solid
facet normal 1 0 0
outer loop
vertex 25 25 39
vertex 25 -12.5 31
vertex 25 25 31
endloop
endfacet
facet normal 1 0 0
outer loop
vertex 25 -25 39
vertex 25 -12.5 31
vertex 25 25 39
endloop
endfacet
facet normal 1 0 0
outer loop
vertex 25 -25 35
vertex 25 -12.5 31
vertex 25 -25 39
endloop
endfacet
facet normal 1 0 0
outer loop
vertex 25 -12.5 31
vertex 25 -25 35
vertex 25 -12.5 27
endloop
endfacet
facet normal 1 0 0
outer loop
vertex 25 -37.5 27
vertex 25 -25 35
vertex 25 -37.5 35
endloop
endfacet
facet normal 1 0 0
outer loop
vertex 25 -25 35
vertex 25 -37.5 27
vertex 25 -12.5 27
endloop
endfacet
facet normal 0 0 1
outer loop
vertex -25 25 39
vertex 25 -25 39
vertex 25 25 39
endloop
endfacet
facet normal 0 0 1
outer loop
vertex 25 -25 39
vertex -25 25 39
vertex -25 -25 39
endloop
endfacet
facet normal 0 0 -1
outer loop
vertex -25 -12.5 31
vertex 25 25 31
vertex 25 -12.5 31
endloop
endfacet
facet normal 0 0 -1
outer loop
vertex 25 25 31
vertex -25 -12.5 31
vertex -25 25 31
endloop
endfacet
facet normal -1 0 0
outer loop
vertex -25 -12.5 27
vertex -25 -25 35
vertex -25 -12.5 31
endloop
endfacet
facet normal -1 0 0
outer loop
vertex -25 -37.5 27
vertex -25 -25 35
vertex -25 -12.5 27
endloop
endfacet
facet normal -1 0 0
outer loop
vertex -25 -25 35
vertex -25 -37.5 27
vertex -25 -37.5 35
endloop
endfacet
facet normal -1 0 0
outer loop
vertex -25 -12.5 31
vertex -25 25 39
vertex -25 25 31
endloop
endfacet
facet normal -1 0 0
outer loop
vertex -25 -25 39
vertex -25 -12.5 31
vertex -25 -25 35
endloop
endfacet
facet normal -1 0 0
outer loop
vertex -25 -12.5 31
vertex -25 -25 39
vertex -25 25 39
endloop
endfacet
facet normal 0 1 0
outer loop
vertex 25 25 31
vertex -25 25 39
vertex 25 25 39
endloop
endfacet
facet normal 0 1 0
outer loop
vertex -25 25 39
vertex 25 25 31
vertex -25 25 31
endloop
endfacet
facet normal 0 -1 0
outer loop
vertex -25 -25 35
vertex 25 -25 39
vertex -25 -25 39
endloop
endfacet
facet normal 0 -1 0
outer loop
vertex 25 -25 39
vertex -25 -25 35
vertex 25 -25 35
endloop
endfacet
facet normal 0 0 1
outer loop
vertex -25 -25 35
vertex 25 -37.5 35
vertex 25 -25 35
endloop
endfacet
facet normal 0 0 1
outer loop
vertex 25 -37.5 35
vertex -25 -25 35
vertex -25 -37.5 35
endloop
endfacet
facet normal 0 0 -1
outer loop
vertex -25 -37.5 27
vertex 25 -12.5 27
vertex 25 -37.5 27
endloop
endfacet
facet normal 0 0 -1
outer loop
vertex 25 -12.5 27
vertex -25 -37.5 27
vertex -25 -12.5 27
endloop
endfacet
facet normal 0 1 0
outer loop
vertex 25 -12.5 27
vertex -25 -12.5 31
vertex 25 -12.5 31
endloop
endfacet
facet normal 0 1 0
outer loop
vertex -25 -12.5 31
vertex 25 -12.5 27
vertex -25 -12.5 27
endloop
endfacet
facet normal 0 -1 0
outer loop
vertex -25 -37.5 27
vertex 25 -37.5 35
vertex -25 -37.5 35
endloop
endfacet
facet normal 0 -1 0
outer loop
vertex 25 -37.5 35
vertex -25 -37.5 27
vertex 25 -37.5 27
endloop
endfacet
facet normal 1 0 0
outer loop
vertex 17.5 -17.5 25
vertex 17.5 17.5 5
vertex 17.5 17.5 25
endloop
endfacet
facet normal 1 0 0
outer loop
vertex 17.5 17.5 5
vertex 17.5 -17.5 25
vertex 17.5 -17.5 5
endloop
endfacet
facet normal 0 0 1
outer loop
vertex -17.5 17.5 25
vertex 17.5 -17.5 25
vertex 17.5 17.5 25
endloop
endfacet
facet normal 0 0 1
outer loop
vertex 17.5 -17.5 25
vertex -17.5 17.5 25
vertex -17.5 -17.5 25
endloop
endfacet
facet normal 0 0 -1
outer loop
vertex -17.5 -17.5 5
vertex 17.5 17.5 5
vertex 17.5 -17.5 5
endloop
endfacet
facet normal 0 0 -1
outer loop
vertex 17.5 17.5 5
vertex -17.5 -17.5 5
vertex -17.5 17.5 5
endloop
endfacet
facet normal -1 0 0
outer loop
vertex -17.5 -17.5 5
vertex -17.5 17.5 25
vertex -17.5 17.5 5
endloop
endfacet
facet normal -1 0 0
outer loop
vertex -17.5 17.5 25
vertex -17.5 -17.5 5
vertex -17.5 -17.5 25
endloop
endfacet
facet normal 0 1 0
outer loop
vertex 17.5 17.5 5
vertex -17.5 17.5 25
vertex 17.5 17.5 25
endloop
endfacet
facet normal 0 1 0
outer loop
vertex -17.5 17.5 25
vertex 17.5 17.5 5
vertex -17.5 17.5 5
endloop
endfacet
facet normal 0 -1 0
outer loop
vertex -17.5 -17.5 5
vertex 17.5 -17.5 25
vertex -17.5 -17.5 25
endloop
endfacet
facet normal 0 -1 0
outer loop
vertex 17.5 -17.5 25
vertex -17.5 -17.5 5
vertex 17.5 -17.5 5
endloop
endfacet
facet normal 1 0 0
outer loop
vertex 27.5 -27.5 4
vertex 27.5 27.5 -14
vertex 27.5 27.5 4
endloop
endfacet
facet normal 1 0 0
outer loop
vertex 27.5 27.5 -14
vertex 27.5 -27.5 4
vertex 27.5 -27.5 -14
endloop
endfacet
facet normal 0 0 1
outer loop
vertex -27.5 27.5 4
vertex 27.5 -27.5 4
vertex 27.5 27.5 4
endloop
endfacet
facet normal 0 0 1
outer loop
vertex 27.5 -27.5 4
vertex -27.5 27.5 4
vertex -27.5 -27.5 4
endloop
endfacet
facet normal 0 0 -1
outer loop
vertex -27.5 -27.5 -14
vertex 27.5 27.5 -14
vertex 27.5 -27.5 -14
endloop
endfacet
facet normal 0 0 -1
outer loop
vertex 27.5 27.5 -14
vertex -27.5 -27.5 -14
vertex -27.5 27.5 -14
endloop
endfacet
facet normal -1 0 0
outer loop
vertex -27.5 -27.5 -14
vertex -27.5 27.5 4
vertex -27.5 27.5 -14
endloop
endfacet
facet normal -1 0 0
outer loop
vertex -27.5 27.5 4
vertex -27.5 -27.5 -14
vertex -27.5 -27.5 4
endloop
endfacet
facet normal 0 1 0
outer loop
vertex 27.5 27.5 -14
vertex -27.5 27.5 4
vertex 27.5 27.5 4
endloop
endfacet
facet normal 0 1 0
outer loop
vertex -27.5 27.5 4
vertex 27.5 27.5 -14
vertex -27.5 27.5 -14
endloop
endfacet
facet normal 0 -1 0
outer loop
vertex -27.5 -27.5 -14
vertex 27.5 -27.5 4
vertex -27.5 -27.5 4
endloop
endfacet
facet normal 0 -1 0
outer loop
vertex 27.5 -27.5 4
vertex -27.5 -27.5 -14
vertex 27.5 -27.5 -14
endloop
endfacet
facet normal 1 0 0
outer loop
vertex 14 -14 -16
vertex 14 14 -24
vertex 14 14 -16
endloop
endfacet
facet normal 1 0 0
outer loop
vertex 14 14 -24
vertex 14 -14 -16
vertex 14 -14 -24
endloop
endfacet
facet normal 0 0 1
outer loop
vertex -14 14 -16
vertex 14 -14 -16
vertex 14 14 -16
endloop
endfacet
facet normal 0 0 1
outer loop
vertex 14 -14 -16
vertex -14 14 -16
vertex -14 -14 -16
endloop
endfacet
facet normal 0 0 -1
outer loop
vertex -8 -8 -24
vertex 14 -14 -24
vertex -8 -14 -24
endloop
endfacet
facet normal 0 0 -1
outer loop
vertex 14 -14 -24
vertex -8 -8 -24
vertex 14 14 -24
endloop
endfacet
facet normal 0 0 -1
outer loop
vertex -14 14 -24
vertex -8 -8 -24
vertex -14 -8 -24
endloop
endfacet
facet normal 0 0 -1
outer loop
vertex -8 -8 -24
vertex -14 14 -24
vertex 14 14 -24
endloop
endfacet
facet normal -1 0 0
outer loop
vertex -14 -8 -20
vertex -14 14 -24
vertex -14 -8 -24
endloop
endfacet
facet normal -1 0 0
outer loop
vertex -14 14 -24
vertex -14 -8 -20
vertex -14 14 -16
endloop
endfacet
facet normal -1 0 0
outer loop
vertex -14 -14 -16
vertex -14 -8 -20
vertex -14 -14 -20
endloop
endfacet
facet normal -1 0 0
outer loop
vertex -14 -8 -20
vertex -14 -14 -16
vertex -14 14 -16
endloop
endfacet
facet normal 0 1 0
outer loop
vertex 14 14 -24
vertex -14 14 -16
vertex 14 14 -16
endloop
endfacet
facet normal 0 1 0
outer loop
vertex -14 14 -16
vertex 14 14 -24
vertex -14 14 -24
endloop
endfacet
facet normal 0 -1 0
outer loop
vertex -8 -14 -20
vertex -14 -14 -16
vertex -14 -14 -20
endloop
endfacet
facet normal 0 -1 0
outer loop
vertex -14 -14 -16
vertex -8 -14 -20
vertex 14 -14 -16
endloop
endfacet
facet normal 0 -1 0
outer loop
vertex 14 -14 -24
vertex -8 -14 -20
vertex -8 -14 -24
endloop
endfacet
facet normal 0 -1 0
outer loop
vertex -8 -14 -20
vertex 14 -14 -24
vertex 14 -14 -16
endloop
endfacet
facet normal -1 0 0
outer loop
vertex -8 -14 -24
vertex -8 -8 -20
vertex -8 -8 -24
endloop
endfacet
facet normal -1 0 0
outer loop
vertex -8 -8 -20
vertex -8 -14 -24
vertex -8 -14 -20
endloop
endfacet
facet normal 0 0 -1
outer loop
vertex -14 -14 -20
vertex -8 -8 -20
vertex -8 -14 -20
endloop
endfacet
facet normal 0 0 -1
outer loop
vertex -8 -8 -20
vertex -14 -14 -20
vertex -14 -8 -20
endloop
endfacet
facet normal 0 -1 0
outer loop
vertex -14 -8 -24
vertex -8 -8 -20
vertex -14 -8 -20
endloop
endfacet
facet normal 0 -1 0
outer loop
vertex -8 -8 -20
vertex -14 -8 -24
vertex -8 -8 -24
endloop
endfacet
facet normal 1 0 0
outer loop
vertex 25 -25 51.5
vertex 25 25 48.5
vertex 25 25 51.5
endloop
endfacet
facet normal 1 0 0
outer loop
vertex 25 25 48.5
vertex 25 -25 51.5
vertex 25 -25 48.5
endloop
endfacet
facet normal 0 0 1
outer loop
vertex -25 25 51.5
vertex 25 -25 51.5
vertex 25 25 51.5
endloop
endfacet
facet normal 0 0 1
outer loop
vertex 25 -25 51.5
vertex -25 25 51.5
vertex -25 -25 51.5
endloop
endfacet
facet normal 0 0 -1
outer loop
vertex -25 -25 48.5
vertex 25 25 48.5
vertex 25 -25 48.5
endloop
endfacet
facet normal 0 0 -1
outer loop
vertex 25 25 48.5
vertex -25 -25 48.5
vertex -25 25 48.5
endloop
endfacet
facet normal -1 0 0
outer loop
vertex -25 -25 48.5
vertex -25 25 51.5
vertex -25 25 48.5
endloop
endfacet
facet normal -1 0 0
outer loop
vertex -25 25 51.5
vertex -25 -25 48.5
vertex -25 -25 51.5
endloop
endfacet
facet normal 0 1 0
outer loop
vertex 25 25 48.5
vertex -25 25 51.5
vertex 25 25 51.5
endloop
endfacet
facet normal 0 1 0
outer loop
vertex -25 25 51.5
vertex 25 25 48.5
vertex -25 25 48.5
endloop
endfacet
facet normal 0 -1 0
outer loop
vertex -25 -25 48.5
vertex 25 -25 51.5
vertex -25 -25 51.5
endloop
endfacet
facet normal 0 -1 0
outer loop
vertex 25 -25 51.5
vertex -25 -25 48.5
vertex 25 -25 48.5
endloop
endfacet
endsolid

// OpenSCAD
// Define the dimensions for each component
module flat_plate() {
    cube([50, 50, 3], center = true); // Reduced thickness to match the original model
}

module l_shaped_connector() {
    difference() {
        union() {
            cube([50, 50, 8], center = true); // Thinned horizontal section
            translate([0, -25, -4]) cube([50, 25, 8], center = true); // Adjusted thickness
        }
        translate([-25, -25, -4]) polyhedron(
            points = [[0, 0, 0], [25, 0, 0], [0, 25, 0], [0, 0, 8], [25, 0, 8], [0, 25, 8]],
            faces = [[0, 1, 2], [3, 4, 5], [0, 1, 4, 3], [1, 2, 5, 4], [2, 0, 3, 5]]
        ); // Made the triangular cutout more prominent and deeper
    }
}

module inner_support() {
    difference() {
        cube([35, 35, 20], center = true); // Reduced base width
        translate([-17.5, -17.5, -10]) polyhedron(
            points = [[0, 0, 0], [17.5, 0, 0], [0, 17.5, 0], [0, 0, 20], [17.5, 0, 20], [0, 17.5, 20]],
            faces = [[0, 1, 2], [3, 4, 5], [0, 1, 4, 3], [1, 2, 5, 4], [2, 0, 3, 5]]
        ); // Enlarged and sharpened the triangular cutout
    }
}

module outer_support() {
    difference() {
        cube([55, 55, 18], center = true); // Reduced thickness
        translate([-27.5, -27.5, -9]) polyhedron(
            points = [[0, 0, 0], [27.5, 0, 0], [0, 27.5, 0], [0, 0, 18], [27.5, 0, 18], [0, 27.5, 18]],
            faces = [[0, 1, 2], [3, 4, 5], [0, 1, 4, 3], [1, 2, 5, 4], [2, 0, 3, 5]]
        ); // Enlarged the triangular cutout and made vertical sides more defined
    }
}

module reinforcement_block() {
    difference() {
        cube([28, 28, 8], center = true); // Slightly decreased overall size
        translate([-14, -14, -4]) cube([12, 12, 8], center = true); // Reduced prominence of the stepped design
    }
}

// Assemble the components based on the positional relationship
module assembly() {
    translate([0, 0, 50]) flat_plate();
    translate([0, 0, 35]) l_shaped_connector();
    translate([0, 0, 15]) inner_support();
    translate([0, 0, -5]) outer_support();
    translate([0, 0, -20]) reinforcement_block();
}

// Render the final assembly
assembly();
